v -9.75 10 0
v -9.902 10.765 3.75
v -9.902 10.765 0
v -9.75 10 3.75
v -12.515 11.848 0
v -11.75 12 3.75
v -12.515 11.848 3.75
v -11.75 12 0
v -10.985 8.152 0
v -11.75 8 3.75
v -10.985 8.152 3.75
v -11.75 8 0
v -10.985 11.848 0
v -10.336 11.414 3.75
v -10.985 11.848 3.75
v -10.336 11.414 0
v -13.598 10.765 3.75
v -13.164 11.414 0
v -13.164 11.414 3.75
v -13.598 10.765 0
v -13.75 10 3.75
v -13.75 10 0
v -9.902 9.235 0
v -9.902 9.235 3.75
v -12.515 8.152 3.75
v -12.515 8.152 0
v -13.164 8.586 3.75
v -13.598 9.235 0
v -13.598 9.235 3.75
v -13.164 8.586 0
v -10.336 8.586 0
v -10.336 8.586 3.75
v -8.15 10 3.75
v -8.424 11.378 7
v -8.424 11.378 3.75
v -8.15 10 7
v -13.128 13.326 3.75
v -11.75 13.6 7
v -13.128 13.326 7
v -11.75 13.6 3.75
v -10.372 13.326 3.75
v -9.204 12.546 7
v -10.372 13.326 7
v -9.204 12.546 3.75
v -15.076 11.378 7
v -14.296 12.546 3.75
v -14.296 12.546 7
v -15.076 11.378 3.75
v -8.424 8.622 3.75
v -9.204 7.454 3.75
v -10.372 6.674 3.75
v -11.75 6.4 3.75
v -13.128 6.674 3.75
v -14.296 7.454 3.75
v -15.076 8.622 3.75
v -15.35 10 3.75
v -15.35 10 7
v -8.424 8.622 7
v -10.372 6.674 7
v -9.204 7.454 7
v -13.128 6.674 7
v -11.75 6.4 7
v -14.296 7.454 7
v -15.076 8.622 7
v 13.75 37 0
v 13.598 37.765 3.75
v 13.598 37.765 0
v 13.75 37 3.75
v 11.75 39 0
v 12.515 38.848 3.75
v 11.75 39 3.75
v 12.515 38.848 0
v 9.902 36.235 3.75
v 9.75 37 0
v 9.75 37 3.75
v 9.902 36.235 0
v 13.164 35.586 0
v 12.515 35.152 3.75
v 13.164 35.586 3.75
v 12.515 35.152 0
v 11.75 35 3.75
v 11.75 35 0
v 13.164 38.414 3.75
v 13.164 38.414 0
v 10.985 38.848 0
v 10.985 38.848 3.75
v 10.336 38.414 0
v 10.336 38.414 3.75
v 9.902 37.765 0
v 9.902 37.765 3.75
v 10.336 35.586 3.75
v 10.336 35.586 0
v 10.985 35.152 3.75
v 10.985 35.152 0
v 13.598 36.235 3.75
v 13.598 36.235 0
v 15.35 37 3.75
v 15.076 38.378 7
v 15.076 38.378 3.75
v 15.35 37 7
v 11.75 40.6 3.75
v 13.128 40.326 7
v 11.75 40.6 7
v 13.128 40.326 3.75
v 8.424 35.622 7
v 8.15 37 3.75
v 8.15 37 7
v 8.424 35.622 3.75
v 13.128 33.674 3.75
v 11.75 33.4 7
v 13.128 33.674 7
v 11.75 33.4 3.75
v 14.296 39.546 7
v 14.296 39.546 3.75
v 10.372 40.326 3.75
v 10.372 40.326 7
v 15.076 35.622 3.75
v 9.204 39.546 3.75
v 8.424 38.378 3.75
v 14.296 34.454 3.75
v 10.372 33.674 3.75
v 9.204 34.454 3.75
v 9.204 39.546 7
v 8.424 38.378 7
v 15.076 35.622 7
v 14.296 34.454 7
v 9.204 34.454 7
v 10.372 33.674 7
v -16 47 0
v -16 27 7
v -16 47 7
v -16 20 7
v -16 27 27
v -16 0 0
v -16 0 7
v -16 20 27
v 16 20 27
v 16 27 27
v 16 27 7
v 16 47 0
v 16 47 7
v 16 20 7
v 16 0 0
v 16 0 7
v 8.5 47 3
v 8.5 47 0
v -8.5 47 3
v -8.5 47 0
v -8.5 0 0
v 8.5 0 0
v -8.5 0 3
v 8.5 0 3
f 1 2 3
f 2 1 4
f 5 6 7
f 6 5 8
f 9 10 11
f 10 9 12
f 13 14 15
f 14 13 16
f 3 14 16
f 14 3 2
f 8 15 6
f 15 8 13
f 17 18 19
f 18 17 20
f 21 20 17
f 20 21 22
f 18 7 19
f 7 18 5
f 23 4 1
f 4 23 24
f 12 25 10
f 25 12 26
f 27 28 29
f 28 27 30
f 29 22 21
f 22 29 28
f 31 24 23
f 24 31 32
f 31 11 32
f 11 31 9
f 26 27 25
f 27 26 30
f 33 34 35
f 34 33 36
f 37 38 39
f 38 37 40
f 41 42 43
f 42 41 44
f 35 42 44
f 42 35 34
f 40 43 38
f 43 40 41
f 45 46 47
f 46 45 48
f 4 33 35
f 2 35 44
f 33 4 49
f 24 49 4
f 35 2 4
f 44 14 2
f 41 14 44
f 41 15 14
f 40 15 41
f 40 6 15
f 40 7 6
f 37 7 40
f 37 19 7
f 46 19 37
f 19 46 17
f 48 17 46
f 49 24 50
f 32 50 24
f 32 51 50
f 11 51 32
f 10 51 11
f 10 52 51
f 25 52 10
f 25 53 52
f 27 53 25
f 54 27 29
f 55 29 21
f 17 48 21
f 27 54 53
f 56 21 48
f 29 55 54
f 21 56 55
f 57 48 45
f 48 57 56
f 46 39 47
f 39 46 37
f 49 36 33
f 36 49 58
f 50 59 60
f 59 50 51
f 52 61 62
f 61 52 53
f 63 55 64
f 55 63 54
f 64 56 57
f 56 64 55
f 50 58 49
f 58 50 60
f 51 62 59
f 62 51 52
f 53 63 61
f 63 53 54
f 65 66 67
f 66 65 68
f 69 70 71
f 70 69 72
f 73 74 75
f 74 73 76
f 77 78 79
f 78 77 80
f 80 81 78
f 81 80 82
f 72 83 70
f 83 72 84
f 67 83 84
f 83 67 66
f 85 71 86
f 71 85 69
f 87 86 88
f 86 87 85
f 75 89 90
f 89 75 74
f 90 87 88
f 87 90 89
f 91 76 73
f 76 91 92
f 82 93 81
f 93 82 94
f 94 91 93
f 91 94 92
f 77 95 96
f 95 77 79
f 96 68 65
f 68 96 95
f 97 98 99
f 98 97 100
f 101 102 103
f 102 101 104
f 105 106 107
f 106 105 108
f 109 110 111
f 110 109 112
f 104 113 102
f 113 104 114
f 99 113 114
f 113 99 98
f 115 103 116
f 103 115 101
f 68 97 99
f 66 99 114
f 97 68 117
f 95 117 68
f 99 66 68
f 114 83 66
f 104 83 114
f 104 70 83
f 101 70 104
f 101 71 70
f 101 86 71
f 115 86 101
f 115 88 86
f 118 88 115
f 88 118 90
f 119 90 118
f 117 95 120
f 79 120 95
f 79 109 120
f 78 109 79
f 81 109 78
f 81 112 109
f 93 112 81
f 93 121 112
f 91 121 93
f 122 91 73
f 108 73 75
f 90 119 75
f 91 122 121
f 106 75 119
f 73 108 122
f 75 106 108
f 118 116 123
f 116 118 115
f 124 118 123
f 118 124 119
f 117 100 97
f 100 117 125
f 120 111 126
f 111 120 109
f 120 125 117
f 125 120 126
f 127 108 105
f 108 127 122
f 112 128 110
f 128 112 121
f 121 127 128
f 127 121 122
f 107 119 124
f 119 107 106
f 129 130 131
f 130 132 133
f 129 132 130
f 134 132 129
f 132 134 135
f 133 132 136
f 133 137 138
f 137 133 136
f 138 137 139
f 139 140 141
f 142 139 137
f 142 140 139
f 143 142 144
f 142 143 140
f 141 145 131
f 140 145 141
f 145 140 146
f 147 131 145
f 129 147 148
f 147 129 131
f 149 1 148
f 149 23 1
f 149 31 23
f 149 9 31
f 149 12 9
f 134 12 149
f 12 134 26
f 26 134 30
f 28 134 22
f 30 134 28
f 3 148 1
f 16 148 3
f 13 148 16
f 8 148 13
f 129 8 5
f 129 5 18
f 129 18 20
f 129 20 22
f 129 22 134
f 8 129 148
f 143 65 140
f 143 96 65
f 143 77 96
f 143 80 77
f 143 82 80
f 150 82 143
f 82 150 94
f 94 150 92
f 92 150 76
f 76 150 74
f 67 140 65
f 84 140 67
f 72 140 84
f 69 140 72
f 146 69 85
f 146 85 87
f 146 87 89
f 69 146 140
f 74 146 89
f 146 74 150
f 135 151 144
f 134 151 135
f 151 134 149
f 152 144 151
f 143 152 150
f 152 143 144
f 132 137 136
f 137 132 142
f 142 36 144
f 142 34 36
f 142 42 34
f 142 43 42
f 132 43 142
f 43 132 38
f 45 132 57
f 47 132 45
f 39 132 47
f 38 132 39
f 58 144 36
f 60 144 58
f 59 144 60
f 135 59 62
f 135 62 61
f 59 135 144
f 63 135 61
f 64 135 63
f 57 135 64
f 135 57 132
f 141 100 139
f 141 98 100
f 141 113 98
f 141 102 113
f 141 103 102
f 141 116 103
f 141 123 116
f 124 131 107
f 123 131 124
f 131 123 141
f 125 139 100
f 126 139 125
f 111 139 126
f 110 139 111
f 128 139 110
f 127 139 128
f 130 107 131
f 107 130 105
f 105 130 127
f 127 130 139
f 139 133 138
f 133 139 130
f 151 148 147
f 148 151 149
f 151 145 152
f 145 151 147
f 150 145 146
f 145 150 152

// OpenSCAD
module screw (x, y)
{
  translate ([x, y, 0]) {
    cylinder (h=10, d=4.0, $fn=16, center=true);
  }
  translate ([x, y, 6]) {
    cylinder (h=4.5, d=7.2, $fn=16, center=true);
  }
}

translate ([-16, 0, 0]) {
  difference () {
     // Floor
    cube ([32, 47, 27]);

    // Remove cubes to create vertical
    translate ([0, 0, 7]) {
      cube ([32, 20, 27]);
    }
    translate ([0, 27, 7]) {
      cube ([32, 20, 27]);
    }
    
    // Tie-wrap
    translate ([7.5, 0, 0]) {
      cube ([17, 47, 3]);
    }
    
    //  Screw holes & head recesses
    screw (4.25, 10);
    screw (27.75, 37);
  } 
}
